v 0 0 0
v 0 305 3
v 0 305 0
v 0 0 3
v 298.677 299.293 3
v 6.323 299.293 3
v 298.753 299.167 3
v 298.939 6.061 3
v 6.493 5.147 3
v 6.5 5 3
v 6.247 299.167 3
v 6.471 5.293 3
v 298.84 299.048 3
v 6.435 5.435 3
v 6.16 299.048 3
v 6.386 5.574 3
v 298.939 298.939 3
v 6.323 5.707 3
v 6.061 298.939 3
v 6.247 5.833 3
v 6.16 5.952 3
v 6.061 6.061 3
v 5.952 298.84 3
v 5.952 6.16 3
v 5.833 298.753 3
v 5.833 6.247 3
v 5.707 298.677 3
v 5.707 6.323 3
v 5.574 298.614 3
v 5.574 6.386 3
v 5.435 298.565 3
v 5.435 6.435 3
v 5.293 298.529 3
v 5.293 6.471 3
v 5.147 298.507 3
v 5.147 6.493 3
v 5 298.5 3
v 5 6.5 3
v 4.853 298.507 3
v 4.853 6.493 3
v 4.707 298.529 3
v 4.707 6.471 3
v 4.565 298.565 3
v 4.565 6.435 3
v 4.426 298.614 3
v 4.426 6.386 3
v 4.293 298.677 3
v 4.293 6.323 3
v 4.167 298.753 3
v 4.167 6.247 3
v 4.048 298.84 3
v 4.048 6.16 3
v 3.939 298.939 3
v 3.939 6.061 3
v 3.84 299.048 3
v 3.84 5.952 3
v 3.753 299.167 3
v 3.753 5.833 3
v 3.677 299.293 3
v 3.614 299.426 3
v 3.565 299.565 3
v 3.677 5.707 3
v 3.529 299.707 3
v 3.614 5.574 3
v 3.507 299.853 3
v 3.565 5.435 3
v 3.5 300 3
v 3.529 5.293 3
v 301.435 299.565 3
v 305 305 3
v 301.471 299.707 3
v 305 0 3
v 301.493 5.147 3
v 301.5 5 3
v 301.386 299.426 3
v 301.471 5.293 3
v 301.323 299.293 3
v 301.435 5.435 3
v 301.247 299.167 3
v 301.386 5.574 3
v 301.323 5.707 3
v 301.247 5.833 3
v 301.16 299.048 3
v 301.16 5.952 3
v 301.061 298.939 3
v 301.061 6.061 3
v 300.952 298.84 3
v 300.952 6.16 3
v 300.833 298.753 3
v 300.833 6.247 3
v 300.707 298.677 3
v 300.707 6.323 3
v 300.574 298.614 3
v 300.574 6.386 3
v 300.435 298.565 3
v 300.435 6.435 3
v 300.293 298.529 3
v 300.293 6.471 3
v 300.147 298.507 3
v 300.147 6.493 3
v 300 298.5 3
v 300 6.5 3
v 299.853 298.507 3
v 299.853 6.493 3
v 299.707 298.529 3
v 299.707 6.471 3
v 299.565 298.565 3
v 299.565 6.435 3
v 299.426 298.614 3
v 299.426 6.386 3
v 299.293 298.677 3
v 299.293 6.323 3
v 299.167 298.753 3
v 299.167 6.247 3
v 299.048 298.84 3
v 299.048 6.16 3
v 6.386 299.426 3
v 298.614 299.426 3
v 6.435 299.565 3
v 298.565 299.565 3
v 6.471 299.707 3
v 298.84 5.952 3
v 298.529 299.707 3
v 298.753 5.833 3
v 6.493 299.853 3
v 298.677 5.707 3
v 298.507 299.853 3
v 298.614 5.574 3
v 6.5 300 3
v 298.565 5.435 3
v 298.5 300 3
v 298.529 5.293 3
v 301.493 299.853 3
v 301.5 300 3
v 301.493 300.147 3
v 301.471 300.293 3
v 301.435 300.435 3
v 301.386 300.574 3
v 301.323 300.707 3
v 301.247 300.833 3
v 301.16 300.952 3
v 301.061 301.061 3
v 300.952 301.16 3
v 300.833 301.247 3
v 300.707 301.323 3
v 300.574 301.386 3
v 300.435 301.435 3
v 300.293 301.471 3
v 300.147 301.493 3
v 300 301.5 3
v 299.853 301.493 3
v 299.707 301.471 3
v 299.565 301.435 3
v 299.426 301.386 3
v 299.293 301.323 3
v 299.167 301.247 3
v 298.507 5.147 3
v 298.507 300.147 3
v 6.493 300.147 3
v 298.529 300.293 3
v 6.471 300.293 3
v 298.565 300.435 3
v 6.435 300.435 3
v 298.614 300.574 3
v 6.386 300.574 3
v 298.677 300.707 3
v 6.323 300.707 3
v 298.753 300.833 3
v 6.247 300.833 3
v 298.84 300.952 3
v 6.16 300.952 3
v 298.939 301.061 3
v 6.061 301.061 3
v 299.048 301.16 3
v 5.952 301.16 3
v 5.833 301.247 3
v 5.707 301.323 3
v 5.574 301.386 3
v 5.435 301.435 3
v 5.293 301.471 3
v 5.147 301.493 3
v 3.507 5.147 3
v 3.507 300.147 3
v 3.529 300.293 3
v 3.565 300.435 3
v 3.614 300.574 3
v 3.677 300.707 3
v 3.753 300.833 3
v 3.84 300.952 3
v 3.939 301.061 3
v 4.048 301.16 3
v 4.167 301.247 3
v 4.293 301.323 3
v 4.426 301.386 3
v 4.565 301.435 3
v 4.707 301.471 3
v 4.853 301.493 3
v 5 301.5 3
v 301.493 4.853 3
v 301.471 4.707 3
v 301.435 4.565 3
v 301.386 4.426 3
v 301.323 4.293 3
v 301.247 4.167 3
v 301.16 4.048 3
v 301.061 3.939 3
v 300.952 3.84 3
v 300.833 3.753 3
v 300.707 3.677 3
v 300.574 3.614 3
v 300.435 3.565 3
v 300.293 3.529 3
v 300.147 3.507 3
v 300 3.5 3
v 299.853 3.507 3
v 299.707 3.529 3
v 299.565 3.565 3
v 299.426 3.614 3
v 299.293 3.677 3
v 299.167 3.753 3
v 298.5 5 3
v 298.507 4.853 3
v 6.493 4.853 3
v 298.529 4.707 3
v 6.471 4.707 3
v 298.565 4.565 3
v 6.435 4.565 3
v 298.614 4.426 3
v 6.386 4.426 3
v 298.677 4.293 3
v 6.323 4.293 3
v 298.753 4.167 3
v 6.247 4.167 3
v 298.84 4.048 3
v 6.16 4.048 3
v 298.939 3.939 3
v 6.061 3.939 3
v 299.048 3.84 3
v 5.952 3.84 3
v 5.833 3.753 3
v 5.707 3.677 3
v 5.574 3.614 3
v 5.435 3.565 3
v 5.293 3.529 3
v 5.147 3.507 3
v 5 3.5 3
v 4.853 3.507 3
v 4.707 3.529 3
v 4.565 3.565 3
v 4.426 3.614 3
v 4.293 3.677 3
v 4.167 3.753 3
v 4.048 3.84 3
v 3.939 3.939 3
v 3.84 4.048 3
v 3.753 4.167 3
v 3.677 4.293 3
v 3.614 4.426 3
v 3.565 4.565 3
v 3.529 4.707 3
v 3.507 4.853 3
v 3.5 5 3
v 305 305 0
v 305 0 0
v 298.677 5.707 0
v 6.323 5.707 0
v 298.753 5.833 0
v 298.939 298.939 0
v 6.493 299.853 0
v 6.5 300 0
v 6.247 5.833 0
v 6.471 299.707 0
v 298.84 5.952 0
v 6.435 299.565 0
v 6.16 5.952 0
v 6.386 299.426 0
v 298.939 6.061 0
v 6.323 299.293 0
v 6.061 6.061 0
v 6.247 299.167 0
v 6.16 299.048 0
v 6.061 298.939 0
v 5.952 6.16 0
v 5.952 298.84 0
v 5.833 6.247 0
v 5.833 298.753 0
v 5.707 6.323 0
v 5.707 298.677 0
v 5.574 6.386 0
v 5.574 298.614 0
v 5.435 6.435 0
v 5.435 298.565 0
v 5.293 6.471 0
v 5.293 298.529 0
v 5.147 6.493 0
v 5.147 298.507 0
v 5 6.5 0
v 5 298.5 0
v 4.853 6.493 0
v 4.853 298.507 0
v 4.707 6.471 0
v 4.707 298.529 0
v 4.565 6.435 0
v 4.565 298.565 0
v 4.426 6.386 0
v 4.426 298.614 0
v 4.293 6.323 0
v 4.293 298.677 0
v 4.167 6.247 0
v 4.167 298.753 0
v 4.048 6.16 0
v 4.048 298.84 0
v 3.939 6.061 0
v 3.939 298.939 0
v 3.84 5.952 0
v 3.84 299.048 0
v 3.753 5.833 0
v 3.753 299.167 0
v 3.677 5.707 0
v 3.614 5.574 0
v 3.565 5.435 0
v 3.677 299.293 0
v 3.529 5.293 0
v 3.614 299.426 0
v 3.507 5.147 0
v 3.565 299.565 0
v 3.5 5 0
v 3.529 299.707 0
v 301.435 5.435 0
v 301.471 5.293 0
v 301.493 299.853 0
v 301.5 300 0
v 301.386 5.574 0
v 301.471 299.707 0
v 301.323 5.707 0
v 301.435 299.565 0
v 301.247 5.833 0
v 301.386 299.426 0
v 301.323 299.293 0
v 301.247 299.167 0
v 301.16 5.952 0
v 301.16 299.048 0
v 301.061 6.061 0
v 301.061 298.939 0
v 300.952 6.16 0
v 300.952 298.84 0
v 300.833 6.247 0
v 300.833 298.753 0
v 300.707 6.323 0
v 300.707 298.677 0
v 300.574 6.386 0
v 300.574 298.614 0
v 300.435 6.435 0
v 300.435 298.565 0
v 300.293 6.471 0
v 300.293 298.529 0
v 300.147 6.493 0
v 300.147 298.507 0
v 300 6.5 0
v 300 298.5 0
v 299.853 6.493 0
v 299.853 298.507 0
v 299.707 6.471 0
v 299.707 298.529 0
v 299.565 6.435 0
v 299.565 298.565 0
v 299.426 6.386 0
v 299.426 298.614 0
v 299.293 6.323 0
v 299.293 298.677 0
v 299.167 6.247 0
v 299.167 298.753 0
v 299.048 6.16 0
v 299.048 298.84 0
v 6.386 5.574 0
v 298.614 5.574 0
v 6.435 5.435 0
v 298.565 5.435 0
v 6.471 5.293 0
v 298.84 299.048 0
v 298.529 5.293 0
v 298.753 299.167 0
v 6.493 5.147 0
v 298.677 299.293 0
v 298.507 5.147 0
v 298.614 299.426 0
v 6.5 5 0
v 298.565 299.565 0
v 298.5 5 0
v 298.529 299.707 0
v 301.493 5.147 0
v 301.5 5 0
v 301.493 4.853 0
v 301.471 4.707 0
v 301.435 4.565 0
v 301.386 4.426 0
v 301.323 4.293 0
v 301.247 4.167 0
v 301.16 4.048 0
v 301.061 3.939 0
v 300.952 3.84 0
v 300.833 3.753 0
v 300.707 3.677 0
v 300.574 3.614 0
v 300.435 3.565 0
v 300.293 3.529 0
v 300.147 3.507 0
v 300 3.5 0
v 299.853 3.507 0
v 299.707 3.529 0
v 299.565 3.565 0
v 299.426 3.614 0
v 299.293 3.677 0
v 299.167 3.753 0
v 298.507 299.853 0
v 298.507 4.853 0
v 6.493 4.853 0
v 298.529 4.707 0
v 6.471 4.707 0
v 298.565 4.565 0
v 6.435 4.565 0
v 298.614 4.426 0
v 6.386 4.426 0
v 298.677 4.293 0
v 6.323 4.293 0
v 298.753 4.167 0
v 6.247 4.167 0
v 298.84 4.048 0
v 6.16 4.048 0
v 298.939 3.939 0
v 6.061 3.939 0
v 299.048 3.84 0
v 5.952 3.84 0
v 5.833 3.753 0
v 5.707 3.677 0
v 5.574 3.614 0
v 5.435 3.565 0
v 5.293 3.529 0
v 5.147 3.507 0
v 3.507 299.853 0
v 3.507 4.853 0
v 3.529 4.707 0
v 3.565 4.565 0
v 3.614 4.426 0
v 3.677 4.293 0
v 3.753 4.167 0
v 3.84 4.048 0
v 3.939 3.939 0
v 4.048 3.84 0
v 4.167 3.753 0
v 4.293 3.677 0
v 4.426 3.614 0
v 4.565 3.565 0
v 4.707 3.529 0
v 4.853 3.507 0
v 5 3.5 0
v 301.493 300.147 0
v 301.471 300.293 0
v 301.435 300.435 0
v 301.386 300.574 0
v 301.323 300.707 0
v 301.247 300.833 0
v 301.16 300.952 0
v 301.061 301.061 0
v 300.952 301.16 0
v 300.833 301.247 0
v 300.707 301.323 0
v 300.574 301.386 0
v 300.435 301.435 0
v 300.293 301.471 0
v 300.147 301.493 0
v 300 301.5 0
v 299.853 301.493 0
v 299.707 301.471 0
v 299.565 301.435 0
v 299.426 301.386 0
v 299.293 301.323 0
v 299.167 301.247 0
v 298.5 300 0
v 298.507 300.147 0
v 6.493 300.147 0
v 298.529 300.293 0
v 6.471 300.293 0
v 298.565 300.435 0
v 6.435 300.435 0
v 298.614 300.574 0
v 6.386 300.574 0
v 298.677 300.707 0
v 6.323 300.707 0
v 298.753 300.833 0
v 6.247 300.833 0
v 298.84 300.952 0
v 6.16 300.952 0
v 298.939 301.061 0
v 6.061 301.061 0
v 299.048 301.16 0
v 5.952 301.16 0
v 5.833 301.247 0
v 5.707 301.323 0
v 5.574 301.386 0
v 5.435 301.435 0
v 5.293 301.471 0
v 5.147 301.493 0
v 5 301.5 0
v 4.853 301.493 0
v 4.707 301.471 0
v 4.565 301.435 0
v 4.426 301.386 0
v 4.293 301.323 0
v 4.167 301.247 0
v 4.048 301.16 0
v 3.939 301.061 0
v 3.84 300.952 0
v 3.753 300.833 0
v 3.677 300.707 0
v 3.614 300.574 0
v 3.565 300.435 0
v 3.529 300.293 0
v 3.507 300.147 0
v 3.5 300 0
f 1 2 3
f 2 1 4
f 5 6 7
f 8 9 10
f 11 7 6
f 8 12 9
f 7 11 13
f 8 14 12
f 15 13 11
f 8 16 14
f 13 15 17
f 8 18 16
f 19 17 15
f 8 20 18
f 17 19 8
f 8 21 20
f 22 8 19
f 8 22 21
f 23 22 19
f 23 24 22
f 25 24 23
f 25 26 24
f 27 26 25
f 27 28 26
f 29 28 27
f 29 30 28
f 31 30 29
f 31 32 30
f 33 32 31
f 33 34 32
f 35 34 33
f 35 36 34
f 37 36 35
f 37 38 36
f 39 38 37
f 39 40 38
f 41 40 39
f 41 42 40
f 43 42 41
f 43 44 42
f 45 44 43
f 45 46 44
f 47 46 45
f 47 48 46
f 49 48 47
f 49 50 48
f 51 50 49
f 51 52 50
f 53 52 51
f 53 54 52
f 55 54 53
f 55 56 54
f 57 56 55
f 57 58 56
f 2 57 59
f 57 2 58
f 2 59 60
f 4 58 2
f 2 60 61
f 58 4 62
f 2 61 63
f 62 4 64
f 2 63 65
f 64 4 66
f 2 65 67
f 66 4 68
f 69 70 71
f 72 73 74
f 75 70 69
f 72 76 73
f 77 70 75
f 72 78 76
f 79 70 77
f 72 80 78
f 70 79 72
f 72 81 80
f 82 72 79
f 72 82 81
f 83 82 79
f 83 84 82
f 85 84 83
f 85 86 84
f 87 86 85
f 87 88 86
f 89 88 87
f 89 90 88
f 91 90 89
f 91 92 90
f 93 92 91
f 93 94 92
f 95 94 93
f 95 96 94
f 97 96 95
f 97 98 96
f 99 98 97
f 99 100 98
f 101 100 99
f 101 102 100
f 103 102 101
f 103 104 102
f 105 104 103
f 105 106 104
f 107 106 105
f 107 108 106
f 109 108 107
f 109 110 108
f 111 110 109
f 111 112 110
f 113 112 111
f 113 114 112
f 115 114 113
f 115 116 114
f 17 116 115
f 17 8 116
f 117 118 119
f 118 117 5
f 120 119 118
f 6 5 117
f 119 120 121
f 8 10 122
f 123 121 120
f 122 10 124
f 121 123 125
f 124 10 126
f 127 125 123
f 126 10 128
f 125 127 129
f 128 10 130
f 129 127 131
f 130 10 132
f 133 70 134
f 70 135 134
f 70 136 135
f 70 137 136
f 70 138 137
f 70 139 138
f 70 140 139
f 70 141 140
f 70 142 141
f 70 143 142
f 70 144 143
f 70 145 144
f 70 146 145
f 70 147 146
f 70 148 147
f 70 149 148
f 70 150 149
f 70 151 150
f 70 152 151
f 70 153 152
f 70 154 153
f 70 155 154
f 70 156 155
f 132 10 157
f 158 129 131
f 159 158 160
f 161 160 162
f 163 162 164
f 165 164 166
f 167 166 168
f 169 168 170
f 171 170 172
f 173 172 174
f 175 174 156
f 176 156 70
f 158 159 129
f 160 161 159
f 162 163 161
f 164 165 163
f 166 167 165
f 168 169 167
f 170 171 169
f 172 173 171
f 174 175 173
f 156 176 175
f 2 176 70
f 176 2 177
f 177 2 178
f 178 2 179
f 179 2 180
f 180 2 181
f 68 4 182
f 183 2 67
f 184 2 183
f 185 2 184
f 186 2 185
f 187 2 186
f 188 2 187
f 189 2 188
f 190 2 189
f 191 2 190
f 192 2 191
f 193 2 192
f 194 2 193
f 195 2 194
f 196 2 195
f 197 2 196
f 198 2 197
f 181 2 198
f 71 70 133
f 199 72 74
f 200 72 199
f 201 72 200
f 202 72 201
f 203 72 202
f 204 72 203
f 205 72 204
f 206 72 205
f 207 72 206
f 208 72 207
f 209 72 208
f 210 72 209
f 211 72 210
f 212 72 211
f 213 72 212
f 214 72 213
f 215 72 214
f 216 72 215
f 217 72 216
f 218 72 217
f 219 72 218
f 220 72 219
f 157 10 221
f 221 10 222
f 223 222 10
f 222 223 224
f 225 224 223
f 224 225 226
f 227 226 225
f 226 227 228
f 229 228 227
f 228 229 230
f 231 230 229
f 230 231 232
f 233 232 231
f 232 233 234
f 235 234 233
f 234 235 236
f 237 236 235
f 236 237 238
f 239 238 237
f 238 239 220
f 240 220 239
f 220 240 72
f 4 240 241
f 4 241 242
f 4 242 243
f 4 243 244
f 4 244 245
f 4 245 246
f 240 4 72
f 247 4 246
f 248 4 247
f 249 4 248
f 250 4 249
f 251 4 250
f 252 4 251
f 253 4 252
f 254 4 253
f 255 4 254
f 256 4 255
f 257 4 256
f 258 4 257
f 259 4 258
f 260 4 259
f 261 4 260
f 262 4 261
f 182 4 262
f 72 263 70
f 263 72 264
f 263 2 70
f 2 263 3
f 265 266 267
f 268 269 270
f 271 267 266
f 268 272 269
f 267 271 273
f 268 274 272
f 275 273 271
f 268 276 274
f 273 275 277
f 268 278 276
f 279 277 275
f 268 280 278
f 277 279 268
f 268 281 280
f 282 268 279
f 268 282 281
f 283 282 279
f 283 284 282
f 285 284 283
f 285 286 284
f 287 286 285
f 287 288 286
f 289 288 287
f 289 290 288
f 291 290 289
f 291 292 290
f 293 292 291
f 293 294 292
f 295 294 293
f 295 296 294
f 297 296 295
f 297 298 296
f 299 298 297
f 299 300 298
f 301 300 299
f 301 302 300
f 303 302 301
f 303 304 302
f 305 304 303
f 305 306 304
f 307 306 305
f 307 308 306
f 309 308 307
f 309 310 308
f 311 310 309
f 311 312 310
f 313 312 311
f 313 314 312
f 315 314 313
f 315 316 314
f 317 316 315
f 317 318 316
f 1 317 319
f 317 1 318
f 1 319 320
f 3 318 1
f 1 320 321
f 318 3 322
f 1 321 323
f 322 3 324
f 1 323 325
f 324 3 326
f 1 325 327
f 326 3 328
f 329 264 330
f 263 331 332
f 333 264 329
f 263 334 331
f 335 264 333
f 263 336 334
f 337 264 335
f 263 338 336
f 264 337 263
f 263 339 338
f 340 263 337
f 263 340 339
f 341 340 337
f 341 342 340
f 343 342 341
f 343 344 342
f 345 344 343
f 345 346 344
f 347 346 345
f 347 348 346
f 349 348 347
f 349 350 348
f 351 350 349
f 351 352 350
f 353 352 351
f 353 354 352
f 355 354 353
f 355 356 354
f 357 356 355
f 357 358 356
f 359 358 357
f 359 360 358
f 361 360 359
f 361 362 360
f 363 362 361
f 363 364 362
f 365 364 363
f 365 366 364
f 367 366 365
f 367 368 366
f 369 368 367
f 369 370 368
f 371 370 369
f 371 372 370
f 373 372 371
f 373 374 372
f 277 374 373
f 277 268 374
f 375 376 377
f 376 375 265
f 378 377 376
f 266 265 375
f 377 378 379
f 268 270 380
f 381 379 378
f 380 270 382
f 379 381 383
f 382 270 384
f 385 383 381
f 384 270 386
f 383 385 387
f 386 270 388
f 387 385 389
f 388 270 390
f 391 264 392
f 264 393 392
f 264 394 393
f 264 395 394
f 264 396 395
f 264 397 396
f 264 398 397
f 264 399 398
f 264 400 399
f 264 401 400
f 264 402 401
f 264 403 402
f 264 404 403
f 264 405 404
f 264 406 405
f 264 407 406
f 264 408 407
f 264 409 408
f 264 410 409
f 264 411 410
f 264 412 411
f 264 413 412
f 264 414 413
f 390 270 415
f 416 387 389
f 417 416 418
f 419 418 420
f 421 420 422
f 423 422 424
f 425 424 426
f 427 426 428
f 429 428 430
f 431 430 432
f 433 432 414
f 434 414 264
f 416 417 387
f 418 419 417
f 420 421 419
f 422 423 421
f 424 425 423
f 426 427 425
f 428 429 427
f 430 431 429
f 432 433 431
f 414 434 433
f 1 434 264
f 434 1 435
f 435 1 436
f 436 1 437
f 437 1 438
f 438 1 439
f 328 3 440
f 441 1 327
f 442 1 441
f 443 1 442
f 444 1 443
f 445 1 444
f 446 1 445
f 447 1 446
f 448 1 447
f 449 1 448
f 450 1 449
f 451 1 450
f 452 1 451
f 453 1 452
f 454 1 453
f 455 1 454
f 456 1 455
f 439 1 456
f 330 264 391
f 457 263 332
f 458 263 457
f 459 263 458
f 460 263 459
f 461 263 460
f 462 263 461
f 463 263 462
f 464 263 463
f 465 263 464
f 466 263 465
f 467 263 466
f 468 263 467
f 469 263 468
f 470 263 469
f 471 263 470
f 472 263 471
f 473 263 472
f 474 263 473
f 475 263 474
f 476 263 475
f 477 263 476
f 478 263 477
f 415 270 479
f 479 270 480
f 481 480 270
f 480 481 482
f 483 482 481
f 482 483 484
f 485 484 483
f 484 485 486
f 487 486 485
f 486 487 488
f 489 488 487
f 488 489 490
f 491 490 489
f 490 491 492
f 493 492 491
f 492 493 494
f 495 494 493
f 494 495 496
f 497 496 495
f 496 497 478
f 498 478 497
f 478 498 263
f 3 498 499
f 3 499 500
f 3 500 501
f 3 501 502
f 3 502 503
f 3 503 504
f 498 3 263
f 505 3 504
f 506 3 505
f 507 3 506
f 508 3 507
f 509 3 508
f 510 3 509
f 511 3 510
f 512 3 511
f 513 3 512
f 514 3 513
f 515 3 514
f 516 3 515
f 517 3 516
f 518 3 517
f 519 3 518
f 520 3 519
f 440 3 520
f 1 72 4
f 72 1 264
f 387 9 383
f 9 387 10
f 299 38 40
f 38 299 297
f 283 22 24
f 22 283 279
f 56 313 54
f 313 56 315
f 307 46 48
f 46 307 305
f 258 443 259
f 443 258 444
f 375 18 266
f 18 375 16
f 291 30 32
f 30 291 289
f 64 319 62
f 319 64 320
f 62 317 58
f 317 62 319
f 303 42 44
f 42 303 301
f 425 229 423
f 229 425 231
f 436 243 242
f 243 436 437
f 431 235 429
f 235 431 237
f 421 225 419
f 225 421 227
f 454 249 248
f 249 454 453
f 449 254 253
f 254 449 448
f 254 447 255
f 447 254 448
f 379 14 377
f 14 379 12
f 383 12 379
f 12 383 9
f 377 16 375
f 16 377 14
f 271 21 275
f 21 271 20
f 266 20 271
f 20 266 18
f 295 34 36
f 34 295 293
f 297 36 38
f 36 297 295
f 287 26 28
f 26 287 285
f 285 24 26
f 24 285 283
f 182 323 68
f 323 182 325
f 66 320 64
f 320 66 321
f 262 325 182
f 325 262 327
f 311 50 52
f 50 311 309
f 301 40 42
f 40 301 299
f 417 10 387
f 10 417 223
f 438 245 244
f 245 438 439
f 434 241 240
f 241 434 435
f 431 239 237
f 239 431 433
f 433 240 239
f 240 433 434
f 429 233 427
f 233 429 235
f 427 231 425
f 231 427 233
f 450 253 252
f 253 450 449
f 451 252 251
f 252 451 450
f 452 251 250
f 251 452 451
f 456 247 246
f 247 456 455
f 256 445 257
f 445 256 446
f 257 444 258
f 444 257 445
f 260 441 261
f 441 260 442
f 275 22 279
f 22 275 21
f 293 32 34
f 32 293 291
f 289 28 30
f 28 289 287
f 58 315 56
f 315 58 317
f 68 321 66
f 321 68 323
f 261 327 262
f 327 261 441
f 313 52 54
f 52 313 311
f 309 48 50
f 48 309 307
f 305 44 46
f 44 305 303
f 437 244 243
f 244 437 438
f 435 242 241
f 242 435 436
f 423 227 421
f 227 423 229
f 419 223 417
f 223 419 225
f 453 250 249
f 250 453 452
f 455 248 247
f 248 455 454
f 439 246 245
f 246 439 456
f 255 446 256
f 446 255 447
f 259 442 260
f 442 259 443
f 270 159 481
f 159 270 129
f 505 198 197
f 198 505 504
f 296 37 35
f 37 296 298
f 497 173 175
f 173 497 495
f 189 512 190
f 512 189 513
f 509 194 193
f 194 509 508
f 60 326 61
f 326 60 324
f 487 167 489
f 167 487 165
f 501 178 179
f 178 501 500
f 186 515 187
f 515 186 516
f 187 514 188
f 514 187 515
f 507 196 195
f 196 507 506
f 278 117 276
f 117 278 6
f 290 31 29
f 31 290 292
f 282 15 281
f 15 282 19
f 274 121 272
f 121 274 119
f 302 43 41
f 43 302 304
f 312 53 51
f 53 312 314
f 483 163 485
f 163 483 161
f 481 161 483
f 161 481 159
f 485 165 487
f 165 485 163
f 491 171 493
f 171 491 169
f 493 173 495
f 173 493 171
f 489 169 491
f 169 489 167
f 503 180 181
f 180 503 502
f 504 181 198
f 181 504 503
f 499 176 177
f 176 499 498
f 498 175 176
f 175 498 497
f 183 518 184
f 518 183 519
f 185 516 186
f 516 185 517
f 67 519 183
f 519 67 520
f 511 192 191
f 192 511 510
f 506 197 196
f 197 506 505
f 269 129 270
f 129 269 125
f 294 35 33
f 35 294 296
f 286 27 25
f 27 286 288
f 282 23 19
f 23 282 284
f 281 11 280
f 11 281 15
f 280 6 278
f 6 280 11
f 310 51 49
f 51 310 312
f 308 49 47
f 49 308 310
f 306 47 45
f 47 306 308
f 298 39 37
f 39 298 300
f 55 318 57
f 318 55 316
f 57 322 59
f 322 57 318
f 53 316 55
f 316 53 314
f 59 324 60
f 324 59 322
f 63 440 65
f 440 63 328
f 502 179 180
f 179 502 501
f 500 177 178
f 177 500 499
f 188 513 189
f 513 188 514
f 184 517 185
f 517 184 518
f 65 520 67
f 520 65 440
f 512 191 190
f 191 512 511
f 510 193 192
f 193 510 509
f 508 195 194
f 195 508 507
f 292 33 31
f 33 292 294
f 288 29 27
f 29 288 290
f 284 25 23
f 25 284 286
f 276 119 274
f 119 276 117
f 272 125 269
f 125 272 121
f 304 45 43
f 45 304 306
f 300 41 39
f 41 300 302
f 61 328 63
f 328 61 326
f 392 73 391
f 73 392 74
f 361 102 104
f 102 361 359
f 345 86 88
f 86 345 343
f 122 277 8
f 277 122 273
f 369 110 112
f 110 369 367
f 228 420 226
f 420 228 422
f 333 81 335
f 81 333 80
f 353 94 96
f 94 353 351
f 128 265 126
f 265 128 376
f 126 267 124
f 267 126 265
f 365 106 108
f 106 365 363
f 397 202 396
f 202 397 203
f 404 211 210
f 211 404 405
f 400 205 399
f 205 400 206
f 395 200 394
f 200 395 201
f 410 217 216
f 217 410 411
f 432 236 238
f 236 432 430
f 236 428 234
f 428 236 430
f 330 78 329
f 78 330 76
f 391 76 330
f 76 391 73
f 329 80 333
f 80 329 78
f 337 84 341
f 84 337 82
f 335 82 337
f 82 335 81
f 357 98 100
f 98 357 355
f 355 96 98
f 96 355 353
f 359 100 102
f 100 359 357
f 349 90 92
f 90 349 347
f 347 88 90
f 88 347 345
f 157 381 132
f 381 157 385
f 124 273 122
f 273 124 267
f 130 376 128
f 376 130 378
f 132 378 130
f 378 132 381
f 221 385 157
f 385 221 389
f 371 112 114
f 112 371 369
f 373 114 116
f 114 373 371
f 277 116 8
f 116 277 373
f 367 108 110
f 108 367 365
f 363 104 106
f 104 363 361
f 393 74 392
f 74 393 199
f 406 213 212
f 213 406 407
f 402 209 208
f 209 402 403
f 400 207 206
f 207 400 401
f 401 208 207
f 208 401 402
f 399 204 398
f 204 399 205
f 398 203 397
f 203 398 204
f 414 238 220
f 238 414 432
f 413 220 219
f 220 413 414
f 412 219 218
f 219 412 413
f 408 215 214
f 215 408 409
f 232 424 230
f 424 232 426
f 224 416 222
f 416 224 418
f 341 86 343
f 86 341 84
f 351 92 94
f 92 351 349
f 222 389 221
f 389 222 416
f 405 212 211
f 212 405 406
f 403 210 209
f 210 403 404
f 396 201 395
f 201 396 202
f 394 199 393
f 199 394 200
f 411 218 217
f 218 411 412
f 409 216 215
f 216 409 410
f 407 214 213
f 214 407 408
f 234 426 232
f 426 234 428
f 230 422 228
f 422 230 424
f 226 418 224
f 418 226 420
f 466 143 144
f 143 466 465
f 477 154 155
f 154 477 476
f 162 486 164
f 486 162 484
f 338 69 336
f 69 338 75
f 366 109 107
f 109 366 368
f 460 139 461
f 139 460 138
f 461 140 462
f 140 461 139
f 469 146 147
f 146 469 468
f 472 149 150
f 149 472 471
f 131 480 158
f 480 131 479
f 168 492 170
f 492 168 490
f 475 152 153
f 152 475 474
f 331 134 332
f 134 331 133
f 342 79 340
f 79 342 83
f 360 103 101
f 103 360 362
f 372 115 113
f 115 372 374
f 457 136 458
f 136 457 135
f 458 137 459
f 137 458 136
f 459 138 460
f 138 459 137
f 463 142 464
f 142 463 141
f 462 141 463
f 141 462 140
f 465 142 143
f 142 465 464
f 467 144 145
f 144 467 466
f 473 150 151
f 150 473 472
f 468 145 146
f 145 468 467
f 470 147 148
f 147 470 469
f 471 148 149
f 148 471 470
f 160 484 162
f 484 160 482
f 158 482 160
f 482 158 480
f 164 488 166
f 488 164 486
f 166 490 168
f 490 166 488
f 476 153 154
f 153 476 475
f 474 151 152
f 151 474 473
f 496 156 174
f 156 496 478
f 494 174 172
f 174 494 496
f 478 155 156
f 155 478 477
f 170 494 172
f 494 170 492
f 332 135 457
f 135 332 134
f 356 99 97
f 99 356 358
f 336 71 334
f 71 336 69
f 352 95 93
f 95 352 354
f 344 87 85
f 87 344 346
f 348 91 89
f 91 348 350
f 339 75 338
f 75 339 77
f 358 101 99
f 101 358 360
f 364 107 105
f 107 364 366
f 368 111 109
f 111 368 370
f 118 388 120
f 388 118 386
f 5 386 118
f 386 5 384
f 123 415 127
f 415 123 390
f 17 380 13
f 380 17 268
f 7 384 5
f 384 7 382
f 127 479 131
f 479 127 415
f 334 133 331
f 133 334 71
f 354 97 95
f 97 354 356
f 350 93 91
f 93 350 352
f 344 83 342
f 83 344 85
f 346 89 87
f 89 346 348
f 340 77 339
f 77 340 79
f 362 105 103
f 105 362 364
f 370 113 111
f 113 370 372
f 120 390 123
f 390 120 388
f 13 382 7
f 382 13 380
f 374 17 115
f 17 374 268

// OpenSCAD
// ═══════════════════════════════════════════════════════════════════
// Deck plate — repère Jubilee (X vertical, Y horizontal)
// ═══════════════════════════════════════════════════════════════════
$fn = 64;

difference() {
    cube([305, 305, 3.0]);
    translate([5.000, 5.000, -0.5])
        cylinder(r=1.5, h=4.0, $fn=64);
    translate([5.000, 300.000, -0.5])
        cylinder(r=1.5, h=4.0, $fn=64);
    translate([300.000, 5.000, -0.5])
        cylinder(r=1.5, h=4.0, $fn=64);
    translate([300.000, 300.000, -0.5])
        cylinder(r=1.5, h=4.0, $fn=64);
}
